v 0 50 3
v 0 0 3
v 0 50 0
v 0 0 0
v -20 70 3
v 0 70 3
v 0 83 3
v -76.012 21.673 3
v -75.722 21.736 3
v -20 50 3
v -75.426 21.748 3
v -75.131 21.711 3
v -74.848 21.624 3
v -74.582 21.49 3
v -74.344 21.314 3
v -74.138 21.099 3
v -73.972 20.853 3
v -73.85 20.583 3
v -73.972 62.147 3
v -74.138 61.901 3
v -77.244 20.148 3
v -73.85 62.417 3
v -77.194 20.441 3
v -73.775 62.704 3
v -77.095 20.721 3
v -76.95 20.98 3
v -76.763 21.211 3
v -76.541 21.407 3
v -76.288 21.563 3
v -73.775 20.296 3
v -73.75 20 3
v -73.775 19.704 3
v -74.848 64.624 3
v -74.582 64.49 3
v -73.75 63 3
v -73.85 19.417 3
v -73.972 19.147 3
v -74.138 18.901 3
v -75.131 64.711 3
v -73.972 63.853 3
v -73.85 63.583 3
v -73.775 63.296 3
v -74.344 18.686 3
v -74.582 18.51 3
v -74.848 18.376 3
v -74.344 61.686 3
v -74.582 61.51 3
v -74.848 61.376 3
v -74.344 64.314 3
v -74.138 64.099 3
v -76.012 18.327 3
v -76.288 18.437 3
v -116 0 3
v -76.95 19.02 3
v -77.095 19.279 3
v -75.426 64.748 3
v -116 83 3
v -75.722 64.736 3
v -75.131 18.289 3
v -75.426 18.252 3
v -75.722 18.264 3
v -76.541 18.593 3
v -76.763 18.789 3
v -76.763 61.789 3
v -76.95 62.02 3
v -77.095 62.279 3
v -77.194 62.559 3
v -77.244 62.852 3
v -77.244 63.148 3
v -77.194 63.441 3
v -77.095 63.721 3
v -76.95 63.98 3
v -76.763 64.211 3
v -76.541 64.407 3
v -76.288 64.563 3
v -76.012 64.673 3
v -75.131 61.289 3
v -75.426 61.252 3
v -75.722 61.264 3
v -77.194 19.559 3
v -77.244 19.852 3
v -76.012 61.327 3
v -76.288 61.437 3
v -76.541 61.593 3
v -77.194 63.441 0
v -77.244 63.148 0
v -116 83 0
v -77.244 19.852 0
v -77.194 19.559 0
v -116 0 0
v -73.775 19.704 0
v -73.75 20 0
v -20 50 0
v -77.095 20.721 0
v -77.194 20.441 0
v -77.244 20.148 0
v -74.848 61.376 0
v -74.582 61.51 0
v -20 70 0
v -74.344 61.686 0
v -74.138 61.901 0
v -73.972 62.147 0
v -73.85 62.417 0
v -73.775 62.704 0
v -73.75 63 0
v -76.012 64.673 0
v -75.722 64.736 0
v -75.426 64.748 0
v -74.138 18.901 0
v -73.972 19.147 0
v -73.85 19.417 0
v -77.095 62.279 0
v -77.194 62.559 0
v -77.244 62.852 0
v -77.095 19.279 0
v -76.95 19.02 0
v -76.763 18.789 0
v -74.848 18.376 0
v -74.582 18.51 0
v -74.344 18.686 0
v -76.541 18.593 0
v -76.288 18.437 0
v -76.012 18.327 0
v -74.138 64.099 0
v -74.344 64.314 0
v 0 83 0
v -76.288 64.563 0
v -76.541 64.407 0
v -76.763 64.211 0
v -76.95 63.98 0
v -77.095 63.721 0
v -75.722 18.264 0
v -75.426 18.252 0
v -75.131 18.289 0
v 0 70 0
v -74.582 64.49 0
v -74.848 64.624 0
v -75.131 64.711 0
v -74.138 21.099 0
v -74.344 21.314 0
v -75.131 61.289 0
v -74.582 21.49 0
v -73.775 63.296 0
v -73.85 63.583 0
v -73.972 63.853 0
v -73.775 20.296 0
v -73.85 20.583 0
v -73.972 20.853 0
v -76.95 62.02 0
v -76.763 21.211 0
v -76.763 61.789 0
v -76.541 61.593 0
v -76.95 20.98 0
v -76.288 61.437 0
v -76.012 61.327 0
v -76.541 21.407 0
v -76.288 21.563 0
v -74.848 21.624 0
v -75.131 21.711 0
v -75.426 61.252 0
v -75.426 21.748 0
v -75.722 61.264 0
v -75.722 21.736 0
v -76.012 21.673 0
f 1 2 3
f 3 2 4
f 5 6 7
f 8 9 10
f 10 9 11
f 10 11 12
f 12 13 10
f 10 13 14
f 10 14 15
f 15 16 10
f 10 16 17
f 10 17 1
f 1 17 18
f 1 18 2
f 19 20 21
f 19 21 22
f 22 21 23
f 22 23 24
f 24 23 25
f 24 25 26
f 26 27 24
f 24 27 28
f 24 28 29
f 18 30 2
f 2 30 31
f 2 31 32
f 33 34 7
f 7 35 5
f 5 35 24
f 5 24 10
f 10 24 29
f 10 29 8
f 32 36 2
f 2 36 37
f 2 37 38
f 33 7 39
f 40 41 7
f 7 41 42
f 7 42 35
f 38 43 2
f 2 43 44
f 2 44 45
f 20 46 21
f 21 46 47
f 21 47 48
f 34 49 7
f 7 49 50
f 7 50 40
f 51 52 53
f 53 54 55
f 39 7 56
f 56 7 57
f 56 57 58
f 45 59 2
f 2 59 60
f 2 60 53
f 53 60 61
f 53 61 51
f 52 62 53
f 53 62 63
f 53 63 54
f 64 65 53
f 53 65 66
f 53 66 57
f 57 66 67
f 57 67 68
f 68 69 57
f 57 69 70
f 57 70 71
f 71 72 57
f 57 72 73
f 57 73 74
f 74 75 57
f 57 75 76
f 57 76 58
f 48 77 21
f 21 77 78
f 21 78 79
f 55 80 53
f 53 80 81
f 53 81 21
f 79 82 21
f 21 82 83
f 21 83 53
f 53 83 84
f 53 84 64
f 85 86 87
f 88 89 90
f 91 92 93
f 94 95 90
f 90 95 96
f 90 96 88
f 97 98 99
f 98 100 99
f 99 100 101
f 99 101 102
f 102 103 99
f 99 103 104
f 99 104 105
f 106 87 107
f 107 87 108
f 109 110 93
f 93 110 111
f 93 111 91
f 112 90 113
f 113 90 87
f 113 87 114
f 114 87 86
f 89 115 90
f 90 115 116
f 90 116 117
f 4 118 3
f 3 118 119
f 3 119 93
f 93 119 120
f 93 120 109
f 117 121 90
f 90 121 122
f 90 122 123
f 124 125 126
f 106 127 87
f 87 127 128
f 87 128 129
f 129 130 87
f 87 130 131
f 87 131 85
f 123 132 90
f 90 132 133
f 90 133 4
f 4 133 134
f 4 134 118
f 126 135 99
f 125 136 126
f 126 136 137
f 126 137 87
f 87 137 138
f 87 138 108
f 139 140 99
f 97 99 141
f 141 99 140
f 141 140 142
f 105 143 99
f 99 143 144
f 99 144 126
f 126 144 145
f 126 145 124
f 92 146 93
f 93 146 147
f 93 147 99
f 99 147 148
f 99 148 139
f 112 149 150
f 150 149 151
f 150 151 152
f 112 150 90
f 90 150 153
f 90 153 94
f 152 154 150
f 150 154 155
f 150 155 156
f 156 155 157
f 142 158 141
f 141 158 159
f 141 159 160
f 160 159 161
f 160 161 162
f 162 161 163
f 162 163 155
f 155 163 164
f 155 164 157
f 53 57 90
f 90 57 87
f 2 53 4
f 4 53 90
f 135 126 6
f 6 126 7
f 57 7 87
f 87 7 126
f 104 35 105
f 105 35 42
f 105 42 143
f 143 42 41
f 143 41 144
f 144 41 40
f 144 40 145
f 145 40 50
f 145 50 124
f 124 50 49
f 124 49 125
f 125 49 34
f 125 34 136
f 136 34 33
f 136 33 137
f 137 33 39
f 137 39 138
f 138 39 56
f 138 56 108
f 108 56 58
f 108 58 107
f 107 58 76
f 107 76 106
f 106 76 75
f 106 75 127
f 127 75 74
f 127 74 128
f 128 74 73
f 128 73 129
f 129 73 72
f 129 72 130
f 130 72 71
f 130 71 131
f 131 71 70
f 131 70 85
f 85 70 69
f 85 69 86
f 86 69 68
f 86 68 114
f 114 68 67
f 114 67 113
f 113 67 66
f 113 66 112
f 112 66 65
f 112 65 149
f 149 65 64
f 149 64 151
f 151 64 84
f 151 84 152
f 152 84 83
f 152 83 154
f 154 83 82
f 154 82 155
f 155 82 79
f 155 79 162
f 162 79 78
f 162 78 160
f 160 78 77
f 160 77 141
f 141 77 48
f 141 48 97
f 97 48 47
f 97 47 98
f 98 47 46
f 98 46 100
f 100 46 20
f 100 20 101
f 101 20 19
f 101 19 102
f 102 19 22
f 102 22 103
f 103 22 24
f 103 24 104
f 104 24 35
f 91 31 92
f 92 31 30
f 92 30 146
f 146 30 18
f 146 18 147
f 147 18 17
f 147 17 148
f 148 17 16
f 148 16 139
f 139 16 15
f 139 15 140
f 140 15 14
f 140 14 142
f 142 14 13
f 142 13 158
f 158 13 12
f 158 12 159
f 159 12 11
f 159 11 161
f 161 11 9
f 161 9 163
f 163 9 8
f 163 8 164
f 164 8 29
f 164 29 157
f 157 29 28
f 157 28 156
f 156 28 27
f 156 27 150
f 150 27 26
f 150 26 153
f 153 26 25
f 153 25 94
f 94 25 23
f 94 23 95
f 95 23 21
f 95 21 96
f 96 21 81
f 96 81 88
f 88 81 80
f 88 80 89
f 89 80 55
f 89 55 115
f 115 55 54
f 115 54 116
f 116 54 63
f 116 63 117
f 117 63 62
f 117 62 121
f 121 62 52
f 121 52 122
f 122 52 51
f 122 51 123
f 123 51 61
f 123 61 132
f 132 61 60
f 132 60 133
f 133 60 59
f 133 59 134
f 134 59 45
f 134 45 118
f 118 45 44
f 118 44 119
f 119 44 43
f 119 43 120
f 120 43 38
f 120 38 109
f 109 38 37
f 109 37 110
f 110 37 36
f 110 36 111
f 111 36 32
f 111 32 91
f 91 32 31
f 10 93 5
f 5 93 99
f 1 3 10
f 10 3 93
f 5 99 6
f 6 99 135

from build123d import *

# Parameters (mm, degrees)
SKETCH1_W           = 116
SKETCH1_H           = 83
SKETCH1_W_2         = 70
SKETCH1_H_2         = 77
SKETCH1_W_3         = 35
BOSS_EXTRUDE1_DEPTH = 3
SKETCH2_W           = 70
SKETCH2_H           = 77
SKETCH2_W_2         = 35
BOSS_EXTRUDE2_DEPTH = 3
SKETCH6_R           = 1.75
CUT_EXTRUDE4_DEPTH  = 30
SKETCH8_W           = 20
SKETCH8_H           = 20
CUT_EXTRUDE6_DEPTH  = 10


with BuildPart() as part:
    # Sketch1 → Boss-Extrude1 (new body)
    with BuildSketch(Plane.XY):
        with Locations((-58, 41.5)):
            Rectangle(SKETCH1_W, SKETCH1_H)
        with Locations((-38, 41.5)):
            Rectangle(SKETCH1_W_2, SKETCH1_H_2, mode=Mode.SUBTRACT)
        with Locations((-95.5, 41.5)):
            Rectangle(SKETCH1_W_3, SKETCH1_H_2, mode=Mode.SUBTRACT)
    extrude(amount=BOSS_EXTRUDE1_DEPTH)

    # Sketch2 → Boss-Extrude2 (add)
    with BuildSketch(Plane(origin=(0, 0, 0), x_dir=(-1, 0, 0), z_dir=(0, 0, -1))):
        with Locations((38, 41.5)):
            Rectangle(SKETCH2_W, SKETCH2_H)
        with Locations((95.5, 41.5)):
            Rectangle(SKETCH2_W_2, SKETCH2_H)
    extrude(amount=-BOSS_EXTRUDE2_DEPTH)

    # Sketch6 → Cut-Extrude4 (cut)
    with BuildSketch(Plane.XY.offset(3)):
        with Locations((-75.5, 63)):
            Circle(SKETCH6_R)
        with Locations((-75.5, 20)):
            Circle(SKETCH6_R)
    extrude(amount=-CUT_EXTRUDE4_DEPTH, mode=Mode.SUBTRACT)

    # Sketch8 → Cut-Extrude6 (cut)
    with BuildSketch(Plane.XY.offset(3)):
        with Locations((-10, 60)):
            Rectangle(SKETCH8_W, SKETCH8_H)
    extrude(amount=-CUT_EXTRUDE6_DEPTH, mode=Mode.SUBTRACT)


solid = part.part
